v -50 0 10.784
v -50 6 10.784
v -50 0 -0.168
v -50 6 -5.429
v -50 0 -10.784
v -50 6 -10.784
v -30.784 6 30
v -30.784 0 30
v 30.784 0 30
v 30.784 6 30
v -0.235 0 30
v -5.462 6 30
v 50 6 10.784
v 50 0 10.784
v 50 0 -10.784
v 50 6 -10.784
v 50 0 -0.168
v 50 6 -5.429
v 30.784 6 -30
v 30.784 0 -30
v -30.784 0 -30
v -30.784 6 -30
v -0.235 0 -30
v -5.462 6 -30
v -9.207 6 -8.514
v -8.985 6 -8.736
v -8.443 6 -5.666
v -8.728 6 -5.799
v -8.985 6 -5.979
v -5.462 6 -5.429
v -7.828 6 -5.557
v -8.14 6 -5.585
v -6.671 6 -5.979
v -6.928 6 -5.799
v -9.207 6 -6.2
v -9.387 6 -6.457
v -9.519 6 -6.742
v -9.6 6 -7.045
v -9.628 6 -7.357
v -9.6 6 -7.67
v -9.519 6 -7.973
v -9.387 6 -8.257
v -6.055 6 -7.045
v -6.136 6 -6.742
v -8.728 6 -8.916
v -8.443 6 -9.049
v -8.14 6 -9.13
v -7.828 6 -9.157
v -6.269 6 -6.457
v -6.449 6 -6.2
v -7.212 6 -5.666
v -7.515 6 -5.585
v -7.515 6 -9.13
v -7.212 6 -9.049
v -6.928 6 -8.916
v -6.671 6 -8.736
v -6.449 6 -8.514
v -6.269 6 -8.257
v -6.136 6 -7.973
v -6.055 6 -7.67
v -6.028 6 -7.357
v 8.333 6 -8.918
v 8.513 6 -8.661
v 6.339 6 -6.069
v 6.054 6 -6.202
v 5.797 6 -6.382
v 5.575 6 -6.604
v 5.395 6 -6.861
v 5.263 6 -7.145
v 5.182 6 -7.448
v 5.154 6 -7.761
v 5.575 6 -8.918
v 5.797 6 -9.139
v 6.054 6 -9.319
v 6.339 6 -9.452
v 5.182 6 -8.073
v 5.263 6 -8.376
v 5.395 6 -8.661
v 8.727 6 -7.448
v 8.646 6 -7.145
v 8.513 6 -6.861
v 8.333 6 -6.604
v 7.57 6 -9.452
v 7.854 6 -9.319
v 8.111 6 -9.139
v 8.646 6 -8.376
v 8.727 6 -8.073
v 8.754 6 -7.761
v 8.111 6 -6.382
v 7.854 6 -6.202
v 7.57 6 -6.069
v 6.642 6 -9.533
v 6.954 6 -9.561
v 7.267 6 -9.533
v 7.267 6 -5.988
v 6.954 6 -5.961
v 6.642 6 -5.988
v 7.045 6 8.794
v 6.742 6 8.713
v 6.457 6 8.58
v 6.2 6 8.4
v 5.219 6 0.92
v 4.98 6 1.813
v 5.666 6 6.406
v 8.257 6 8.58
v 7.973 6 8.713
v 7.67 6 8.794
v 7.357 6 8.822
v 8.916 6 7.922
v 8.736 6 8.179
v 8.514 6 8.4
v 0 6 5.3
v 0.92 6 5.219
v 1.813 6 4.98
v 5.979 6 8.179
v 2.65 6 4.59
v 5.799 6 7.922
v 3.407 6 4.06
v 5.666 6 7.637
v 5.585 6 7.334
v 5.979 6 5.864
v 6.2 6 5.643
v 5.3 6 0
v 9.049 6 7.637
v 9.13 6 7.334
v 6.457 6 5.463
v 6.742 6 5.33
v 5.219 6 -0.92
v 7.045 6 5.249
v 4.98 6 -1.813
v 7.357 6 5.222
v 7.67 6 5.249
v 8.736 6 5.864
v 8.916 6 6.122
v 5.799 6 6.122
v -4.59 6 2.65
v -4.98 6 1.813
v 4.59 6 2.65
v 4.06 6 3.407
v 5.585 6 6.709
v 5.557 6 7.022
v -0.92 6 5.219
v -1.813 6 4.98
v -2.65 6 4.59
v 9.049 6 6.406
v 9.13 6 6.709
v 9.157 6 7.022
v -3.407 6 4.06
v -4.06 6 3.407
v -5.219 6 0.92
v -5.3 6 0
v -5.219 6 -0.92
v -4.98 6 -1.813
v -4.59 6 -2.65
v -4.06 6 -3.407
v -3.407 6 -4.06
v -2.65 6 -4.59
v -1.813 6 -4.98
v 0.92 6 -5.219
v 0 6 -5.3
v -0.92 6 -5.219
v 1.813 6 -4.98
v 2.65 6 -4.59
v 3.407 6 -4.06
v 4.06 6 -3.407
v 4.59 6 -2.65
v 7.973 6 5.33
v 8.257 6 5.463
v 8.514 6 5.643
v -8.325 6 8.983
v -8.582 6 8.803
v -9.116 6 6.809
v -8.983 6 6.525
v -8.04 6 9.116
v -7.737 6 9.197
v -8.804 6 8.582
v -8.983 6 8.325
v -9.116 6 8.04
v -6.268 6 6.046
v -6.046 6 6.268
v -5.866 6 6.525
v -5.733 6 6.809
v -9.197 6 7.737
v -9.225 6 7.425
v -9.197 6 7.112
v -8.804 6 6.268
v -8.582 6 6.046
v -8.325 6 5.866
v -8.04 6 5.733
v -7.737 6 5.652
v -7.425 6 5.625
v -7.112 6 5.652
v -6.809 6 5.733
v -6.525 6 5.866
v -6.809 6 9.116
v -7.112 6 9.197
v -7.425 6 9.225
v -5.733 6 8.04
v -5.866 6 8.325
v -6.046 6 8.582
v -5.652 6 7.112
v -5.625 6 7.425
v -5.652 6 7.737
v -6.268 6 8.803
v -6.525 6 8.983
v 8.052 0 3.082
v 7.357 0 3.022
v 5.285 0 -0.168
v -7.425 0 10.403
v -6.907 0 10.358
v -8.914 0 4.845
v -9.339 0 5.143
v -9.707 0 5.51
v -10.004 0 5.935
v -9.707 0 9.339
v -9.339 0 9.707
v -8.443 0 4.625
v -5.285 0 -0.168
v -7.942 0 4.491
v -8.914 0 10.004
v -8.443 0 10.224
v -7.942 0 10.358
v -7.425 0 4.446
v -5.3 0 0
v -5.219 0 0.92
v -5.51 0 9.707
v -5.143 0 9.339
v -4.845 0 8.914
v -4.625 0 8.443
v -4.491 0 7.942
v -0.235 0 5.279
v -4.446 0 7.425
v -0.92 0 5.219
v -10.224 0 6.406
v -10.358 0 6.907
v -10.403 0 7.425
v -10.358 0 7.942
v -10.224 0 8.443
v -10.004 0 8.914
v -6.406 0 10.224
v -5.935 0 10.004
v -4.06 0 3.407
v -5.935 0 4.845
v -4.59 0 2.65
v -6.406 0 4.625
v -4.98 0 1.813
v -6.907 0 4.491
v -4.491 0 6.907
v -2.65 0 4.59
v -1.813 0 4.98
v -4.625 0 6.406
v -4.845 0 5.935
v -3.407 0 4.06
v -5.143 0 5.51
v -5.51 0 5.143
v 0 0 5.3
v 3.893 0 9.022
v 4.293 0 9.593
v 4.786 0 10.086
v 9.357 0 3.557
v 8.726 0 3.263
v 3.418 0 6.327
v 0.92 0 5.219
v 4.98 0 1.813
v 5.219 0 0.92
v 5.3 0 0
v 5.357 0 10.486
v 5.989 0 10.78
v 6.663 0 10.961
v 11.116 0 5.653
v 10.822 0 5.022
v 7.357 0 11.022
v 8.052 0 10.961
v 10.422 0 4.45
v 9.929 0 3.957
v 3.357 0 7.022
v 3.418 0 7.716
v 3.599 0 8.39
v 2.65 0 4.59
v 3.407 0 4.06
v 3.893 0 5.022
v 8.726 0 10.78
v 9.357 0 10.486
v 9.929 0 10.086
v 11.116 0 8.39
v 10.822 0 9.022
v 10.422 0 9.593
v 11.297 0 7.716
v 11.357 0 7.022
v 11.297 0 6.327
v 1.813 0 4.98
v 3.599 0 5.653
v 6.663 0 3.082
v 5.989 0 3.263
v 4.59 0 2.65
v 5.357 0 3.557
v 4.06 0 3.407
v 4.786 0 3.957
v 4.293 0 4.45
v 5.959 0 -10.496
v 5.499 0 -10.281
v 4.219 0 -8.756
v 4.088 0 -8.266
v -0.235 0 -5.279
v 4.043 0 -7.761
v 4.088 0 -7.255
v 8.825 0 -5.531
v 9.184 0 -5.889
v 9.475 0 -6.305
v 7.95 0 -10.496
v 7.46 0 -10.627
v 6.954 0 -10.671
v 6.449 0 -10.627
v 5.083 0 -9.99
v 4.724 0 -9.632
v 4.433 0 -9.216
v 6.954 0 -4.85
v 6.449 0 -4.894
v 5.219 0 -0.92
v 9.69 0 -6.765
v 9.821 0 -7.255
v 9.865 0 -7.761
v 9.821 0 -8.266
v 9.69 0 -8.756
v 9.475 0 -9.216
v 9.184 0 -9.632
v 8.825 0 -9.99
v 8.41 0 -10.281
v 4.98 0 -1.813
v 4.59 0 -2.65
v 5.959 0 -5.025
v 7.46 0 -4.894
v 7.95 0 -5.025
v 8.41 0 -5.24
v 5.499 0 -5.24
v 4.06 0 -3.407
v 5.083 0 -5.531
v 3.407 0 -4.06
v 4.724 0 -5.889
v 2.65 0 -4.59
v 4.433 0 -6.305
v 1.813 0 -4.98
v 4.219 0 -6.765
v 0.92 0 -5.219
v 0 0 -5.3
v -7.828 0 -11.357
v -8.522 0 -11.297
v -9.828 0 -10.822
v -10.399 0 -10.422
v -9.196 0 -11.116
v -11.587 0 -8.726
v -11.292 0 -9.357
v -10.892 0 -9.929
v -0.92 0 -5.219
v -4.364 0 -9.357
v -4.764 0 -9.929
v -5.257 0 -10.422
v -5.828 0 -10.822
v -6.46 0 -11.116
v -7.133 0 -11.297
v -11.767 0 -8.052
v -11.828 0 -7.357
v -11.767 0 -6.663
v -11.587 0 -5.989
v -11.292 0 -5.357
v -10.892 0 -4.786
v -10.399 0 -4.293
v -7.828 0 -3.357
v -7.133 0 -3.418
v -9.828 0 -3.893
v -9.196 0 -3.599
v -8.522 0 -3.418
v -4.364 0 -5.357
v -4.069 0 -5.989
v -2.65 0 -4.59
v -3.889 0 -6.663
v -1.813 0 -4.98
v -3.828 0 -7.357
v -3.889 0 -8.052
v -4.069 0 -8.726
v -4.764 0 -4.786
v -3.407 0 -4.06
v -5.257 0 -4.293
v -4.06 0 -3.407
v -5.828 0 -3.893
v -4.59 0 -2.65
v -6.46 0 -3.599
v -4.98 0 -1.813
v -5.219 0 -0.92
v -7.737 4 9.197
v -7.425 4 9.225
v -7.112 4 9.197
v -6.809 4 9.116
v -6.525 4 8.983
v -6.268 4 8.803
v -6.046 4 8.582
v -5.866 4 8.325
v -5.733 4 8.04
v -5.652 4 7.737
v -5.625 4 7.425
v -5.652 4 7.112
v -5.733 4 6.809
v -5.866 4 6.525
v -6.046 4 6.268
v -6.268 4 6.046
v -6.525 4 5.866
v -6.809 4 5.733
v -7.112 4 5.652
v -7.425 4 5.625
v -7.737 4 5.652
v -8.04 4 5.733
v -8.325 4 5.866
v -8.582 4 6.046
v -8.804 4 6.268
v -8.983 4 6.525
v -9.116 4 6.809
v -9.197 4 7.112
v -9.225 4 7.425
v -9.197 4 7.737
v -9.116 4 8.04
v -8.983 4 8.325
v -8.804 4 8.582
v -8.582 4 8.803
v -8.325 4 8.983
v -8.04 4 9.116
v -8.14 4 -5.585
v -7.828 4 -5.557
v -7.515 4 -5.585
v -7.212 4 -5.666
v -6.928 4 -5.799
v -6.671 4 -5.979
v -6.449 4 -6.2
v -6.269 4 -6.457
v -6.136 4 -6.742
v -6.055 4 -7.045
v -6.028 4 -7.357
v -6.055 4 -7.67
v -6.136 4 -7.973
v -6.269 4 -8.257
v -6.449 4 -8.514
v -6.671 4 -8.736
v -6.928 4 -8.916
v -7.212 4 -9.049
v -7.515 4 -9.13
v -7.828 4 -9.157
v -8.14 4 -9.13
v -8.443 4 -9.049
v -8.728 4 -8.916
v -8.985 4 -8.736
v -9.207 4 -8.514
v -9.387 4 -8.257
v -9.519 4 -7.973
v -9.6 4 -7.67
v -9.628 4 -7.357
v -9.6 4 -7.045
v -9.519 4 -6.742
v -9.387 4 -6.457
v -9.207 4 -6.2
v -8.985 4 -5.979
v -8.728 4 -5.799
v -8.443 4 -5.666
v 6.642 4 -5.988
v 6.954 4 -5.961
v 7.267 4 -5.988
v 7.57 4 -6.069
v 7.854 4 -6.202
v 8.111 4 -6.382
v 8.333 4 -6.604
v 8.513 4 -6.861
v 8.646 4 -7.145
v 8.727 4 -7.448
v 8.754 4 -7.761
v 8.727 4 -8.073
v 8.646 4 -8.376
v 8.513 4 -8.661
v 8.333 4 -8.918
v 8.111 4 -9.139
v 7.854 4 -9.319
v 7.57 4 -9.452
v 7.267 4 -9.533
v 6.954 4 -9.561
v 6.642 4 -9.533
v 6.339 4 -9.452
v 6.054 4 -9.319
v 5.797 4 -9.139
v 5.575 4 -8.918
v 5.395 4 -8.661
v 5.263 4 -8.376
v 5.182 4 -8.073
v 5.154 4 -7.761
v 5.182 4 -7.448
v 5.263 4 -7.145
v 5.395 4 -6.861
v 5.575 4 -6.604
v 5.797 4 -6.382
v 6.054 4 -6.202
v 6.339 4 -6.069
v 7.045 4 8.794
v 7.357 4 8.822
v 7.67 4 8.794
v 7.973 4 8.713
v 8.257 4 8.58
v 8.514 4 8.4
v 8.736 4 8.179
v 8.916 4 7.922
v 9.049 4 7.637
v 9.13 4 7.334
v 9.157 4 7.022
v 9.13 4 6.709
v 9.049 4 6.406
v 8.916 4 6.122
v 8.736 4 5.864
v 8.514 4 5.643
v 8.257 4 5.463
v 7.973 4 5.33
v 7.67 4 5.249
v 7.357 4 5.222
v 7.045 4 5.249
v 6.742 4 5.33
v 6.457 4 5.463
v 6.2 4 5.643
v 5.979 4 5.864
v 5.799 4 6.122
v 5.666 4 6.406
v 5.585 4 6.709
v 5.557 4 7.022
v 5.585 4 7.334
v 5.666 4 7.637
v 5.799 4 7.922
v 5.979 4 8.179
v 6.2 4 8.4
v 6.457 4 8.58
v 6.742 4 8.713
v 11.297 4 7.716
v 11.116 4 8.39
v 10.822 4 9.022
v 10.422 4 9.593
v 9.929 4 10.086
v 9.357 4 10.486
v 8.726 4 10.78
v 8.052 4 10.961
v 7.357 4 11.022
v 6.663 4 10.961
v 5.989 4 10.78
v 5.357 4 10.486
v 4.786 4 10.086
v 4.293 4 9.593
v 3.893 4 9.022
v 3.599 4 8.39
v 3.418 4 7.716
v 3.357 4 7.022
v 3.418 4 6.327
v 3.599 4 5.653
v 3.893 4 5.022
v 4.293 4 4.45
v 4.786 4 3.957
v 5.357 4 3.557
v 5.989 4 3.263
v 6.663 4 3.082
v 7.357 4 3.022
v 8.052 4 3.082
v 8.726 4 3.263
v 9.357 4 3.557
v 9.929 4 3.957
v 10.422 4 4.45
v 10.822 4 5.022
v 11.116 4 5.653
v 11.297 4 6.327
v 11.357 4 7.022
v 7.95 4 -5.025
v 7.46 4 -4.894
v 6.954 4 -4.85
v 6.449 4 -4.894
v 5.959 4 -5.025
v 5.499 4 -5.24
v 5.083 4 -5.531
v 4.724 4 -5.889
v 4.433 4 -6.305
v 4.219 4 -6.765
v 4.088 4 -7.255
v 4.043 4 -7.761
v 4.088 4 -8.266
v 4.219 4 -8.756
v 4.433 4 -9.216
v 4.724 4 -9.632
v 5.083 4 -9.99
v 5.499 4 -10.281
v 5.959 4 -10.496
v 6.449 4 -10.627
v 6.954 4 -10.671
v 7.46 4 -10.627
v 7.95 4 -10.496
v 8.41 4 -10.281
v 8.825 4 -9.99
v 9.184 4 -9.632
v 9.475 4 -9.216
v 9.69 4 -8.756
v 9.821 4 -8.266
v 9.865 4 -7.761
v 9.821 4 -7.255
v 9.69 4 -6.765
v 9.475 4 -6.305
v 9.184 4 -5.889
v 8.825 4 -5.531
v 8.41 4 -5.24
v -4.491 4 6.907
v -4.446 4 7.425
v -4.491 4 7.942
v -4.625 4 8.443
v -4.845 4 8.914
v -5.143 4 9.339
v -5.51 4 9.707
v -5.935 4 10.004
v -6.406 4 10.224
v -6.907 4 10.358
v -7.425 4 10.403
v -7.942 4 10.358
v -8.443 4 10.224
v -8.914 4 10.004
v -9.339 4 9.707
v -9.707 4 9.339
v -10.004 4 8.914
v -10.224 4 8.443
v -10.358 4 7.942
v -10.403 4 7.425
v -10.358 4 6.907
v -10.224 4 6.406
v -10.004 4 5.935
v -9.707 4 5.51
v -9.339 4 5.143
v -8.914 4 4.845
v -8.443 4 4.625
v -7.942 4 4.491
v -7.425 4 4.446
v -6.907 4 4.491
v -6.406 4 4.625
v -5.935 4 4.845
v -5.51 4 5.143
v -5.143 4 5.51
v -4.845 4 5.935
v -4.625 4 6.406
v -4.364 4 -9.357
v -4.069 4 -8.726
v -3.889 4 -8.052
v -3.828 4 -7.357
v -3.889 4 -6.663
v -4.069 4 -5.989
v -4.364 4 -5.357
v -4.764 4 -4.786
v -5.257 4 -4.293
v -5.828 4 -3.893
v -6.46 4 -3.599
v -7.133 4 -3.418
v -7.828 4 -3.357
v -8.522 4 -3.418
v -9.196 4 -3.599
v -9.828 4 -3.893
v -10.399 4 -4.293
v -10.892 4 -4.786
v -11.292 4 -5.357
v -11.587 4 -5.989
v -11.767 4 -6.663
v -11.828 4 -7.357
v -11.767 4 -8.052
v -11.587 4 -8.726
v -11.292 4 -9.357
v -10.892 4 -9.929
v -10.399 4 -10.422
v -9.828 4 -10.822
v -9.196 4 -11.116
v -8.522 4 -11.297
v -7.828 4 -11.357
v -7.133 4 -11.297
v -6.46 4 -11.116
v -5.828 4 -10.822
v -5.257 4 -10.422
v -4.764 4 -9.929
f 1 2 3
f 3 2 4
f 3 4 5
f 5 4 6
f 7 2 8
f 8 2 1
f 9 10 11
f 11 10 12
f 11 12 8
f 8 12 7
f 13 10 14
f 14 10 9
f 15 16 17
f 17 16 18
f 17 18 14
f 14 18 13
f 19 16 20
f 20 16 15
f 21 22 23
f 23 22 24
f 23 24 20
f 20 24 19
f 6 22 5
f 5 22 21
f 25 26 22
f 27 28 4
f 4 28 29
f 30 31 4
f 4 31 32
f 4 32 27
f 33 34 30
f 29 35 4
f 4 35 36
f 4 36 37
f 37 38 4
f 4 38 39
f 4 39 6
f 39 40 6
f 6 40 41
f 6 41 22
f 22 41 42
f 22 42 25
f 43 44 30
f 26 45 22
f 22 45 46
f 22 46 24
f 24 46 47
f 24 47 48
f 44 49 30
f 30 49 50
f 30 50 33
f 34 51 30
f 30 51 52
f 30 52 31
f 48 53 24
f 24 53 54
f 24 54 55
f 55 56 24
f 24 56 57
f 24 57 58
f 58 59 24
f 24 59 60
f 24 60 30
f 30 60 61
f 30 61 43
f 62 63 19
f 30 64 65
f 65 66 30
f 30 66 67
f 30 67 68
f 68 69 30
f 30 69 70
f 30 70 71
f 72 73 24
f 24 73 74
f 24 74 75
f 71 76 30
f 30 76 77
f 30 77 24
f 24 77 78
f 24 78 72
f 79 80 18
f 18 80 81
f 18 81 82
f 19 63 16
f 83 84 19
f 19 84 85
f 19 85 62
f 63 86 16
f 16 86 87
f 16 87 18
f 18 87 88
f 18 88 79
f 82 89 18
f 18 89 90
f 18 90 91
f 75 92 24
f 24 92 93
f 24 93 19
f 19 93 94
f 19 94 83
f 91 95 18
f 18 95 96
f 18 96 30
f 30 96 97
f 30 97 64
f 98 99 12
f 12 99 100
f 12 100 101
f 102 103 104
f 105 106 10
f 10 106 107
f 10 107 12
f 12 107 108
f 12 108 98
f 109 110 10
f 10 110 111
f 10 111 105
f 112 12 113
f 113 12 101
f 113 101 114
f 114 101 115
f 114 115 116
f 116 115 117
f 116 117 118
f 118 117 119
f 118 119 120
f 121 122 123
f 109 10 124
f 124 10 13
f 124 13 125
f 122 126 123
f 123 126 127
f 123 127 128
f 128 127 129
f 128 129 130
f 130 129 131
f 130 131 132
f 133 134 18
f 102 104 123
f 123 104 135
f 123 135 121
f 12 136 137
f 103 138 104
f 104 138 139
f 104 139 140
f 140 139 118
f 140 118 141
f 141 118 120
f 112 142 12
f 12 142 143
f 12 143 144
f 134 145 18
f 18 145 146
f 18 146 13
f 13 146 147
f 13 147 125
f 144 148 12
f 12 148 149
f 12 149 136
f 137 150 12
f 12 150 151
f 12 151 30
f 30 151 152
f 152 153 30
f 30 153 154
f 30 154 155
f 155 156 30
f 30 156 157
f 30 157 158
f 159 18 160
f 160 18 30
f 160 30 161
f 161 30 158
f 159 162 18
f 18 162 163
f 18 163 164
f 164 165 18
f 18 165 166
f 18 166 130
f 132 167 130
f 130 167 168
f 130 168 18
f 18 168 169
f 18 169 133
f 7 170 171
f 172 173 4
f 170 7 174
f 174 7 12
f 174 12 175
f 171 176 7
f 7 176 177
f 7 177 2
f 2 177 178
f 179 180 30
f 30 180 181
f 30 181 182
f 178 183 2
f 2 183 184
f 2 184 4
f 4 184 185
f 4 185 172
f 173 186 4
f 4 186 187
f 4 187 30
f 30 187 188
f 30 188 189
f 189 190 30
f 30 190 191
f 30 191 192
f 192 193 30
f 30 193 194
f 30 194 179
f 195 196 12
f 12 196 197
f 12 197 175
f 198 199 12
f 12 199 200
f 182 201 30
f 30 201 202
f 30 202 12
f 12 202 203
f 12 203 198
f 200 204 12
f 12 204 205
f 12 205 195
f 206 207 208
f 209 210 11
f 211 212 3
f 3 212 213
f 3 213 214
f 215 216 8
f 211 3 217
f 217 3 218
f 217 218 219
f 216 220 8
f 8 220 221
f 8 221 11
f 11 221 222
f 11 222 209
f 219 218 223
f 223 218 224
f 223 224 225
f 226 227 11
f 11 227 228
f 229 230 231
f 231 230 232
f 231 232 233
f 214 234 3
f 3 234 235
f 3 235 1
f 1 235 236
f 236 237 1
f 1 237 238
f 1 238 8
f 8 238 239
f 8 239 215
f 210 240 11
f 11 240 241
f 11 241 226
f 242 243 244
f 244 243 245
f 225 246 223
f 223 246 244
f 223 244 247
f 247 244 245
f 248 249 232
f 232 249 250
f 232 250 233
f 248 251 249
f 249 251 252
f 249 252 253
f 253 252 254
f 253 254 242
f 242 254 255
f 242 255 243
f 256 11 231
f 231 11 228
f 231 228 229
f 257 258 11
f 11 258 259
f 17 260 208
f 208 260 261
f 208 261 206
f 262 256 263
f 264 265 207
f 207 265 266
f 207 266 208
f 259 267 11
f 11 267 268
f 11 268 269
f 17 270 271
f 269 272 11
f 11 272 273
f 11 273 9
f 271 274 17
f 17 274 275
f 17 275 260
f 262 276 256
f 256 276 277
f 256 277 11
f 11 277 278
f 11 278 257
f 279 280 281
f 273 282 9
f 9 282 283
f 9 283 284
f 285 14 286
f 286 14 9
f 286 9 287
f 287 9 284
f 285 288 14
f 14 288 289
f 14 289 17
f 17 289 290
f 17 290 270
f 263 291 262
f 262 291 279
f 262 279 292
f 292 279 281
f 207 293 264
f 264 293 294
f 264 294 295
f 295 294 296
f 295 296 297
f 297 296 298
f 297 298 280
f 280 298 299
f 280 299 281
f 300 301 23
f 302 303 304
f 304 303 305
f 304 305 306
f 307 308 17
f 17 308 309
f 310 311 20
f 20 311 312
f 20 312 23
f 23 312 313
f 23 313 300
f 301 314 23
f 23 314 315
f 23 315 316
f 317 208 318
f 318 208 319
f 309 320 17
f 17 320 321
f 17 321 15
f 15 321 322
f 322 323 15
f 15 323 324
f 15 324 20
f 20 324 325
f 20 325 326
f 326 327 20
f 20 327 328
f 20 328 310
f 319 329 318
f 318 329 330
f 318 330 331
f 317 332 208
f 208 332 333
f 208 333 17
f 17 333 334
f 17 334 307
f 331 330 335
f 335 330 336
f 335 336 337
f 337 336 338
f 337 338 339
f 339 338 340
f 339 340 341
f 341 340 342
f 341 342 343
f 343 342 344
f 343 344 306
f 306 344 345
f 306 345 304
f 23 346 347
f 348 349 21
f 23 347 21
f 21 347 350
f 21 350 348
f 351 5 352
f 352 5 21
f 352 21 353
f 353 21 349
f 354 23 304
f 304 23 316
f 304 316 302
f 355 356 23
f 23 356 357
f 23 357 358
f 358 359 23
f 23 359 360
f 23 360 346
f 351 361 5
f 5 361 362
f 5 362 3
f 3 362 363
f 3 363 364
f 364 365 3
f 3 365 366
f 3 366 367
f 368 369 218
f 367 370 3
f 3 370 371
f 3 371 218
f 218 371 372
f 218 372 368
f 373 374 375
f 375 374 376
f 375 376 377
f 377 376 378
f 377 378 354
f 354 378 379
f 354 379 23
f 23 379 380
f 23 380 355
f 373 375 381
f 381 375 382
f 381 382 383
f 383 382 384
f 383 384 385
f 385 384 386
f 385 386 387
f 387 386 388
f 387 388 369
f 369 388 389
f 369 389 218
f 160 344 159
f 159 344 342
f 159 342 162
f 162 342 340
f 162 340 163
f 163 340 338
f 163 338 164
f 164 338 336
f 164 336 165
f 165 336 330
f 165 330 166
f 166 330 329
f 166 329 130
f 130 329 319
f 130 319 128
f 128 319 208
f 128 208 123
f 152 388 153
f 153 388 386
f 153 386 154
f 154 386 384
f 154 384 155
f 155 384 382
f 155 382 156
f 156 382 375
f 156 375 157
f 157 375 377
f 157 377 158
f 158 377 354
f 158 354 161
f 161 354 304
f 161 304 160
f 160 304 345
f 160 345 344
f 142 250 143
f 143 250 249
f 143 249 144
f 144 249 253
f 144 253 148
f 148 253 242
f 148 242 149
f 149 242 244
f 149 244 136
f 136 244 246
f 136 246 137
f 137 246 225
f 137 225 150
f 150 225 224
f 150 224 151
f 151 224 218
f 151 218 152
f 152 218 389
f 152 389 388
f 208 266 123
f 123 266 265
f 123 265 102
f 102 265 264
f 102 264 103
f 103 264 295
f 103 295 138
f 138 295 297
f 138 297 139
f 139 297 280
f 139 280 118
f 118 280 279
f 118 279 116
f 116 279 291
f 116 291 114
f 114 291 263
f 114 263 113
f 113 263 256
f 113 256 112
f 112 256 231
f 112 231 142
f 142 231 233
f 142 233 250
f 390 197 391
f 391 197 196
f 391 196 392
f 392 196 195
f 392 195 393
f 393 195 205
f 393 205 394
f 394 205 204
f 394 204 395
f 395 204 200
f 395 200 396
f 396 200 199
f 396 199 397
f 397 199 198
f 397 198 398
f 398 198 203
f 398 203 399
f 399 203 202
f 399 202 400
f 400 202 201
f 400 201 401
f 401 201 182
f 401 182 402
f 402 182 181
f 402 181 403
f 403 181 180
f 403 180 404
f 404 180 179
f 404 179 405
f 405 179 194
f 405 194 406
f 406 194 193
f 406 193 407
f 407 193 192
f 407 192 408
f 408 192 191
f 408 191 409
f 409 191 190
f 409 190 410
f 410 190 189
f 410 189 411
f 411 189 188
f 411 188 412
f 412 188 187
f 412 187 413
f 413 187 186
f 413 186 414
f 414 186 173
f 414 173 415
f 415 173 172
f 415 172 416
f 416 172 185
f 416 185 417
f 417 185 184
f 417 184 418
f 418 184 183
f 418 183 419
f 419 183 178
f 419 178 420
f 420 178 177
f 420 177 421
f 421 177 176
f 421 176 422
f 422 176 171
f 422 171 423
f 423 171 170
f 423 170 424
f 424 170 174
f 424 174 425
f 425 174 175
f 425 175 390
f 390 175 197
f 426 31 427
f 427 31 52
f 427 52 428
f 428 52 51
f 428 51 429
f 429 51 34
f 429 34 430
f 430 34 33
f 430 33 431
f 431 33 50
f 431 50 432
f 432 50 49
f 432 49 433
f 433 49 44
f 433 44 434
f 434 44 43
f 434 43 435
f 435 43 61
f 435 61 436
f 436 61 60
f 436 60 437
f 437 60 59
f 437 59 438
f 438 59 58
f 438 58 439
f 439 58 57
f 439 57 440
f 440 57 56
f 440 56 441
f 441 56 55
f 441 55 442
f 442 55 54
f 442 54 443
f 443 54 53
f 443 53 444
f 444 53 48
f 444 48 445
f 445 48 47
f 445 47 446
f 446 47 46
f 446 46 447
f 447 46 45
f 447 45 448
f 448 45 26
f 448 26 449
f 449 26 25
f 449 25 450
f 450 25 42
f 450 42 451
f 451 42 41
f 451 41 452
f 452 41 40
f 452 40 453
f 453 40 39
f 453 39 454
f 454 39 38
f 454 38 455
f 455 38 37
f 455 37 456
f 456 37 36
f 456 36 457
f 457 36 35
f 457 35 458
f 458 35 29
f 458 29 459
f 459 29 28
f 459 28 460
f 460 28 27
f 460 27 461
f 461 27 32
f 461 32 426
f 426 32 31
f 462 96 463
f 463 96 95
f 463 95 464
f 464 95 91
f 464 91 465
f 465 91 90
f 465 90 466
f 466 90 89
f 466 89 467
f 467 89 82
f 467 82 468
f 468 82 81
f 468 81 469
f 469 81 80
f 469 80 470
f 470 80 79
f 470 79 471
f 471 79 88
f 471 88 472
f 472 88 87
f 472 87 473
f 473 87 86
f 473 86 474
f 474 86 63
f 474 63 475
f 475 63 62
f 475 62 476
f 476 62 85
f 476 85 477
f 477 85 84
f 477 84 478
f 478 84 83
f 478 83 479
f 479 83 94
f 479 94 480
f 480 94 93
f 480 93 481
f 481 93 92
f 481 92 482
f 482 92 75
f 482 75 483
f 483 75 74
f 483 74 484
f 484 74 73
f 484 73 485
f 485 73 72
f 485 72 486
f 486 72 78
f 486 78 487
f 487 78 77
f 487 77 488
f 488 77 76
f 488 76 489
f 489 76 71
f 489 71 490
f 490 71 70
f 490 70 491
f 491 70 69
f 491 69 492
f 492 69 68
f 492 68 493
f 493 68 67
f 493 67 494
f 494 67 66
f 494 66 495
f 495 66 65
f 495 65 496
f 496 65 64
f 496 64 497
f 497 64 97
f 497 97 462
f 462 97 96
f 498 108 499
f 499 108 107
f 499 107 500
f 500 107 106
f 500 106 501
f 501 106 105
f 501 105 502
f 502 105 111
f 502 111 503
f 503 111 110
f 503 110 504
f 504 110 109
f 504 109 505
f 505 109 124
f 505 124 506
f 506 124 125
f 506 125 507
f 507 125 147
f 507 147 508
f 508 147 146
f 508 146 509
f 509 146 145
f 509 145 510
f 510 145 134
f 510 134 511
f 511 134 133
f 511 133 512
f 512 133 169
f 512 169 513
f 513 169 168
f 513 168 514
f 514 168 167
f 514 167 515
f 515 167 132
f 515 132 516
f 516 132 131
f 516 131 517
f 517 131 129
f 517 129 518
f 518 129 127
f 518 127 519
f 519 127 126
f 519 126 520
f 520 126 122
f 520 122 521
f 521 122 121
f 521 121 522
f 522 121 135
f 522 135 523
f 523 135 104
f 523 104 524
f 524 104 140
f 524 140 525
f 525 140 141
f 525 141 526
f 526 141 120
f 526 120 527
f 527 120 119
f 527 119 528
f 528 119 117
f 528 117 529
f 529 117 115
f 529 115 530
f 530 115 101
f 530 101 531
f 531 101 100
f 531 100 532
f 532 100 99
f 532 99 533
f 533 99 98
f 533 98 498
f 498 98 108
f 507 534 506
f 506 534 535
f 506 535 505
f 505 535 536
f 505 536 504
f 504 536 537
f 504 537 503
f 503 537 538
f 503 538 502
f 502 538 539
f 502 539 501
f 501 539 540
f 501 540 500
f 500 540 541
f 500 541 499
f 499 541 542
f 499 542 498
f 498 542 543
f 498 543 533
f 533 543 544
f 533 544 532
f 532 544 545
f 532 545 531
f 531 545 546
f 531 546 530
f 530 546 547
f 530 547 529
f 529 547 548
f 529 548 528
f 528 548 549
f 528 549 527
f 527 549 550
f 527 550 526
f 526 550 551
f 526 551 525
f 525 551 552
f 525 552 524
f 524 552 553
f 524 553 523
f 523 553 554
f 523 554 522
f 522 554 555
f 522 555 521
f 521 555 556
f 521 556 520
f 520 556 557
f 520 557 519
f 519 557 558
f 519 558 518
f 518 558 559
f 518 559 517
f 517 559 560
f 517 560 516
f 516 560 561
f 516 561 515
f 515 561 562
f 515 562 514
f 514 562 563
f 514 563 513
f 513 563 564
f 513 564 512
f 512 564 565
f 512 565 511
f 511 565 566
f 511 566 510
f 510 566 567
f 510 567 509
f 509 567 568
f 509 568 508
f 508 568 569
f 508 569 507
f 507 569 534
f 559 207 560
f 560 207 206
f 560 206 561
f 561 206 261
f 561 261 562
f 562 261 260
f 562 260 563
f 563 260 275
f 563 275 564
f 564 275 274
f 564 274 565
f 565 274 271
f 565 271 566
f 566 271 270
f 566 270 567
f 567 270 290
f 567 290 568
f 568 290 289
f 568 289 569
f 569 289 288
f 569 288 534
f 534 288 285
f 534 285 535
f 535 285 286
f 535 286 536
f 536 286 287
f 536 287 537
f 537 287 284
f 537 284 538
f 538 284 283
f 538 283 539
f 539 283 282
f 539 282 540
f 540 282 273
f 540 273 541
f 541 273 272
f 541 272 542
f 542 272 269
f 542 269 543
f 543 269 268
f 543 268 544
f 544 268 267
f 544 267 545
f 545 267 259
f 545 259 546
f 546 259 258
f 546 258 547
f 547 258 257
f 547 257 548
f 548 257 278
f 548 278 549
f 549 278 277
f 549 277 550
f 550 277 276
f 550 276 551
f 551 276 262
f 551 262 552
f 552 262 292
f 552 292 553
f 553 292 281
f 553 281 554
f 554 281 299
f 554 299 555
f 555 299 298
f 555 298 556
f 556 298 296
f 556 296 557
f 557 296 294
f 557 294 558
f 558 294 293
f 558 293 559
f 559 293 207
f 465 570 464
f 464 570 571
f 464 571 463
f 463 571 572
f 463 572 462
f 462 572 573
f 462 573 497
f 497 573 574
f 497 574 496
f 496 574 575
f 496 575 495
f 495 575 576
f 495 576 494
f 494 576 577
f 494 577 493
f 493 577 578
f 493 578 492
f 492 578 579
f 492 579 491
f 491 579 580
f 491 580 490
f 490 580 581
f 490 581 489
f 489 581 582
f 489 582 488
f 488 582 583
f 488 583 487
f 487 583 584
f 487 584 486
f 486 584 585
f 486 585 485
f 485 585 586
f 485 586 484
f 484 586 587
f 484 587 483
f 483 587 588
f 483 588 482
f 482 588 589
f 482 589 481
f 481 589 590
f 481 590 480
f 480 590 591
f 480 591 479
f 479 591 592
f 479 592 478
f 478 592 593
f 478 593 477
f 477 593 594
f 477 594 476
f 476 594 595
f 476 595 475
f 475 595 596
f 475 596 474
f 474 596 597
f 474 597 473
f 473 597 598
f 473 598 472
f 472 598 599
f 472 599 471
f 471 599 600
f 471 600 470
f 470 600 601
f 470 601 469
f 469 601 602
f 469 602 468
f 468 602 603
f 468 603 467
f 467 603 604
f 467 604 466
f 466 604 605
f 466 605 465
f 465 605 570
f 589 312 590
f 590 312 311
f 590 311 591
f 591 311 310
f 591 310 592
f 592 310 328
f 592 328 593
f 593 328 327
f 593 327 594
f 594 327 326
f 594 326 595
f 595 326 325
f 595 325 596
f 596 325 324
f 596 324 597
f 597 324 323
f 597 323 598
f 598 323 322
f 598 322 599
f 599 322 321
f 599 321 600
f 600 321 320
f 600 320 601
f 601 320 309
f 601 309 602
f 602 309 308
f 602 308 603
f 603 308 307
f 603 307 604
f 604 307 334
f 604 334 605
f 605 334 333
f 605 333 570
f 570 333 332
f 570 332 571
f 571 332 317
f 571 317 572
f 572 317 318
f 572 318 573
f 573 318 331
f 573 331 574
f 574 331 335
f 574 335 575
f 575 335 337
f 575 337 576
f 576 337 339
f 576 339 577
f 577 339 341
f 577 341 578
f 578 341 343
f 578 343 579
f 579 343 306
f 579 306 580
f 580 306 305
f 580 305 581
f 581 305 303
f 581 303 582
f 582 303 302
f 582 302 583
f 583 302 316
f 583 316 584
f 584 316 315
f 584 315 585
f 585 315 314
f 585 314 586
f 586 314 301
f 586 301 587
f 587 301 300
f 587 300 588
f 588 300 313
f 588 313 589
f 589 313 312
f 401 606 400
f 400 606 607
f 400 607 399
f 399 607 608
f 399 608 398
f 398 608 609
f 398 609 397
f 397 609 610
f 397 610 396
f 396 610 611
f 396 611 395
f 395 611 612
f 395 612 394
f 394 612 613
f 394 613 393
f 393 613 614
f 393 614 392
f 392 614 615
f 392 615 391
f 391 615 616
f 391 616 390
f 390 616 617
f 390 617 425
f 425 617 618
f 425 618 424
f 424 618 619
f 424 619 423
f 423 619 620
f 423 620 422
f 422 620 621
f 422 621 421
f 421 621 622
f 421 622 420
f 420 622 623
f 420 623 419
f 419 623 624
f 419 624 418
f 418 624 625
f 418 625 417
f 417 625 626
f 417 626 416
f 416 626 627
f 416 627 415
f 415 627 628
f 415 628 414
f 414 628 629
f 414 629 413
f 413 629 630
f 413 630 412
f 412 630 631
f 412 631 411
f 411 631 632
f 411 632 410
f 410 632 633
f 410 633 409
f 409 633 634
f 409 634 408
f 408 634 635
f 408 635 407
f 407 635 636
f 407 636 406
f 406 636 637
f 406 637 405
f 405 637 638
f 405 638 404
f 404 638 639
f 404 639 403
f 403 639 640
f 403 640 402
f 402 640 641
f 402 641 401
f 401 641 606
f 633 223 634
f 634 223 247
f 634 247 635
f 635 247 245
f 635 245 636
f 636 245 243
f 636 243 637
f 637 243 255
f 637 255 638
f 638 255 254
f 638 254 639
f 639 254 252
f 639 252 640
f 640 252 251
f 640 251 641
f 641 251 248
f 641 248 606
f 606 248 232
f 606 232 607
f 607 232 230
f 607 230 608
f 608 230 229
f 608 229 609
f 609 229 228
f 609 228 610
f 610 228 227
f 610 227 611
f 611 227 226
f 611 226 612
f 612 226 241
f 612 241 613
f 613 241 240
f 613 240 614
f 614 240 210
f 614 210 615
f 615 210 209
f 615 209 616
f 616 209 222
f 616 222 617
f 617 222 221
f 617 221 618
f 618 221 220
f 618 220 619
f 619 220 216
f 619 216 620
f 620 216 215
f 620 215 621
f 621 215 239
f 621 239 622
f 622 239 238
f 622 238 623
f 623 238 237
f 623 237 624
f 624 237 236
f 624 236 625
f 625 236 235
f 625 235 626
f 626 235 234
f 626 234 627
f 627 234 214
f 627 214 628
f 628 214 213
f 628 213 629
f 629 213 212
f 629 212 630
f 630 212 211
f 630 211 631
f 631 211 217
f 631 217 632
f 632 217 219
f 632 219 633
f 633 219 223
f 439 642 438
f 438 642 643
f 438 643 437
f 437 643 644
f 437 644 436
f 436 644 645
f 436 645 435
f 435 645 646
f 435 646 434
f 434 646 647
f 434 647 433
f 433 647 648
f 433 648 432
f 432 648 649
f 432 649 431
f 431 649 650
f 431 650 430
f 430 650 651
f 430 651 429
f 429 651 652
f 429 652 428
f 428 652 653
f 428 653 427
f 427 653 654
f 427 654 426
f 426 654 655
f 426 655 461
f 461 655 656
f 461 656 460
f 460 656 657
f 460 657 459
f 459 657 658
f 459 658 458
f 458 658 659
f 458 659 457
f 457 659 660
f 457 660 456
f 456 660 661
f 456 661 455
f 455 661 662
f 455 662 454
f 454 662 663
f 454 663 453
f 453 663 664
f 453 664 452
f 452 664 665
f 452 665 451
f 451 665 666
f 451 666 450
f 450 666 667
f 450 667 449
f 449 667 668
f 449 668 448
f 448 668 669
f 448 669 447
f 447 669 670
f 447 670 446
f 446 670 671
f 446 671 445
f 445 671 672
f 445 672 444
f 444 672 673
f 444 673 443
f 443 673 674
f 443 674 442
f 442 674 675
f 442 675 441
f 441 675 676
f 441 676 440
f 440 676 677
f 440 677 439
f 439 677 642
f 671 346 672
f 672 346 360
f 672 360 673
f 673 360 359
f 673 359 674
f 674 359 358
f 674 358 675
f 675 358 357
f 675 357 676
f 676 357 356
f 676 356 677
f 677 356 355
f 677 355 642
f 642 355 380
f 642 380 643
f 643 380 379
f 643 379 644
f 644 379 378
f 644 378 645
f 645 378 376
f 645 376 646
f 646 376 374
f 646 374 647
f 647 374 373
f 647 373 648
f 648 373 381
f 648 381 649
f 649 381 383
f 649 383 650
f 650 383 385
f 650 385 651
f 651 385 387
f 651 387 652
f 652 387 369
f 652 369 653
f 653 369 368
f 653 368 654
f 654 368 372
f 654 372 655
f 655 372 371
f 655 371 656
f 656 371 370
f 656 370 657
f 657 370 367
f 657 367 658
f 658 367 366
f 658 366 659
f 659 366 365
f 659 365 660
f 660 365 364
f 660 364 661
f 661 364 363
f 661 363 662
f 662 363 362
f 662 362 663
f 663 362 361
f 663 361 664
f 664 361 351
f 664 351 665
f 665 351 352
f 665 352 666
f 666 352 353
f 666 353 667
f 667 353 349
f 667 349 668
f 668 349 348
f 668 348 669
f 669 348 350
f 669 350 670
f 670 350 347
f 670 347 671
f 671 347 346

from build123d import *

# Parameters (mm, degrees)
SALIENTE_EXTRUIR1_DEPTH = 6
CORTAR_EXTRUIR1_REACH   = 8
CROQUIS2_R              = 5.3
CROQUIS2_R_2            = 1.8
CROQUIS3_R              = 4
CROQUIS3_R_2            = 2.910883151
CROQUIS3_R_3            = 2.97880362
CORTAR_EXTRUIR2_DEPTH   = 4


with BuildPart() as part:
    # Croquis1 → Saliente-Extruir1 (new body)
    with BuildSketch(Plane(origin=(0, 0, 0), x_dir=(1, 0, 0), z_dir=(0, 1, 0))):
        Polygon((-50, 10.783872382), (-30.783872382, 30), (30.783872382, 30), (50, 10.783872382), (50, -10.783872382), (30.783872382, -30), (-30.783872382, -30), (-50, -10.783872382), align=None)
    extrude(amount=SALIENTE_EXTRUIR1_DEPTH)

    # Croquis2 → Cortar-Extruir1 (cut, up to next)
    with BuildSketch(Plane(origin=(0, 6, 0), x_dir=(1, 0, 0), z_dir=(0, 1, 0)), mode=Mode.PRIVATE) as cortar_extruir1_sk1:
        Circle(CROQUIS2_R)
    cortar_extruir1_tool1 = extrude(cortar_extruir1_sk1.sketch, amount=-CORTAR_EXTRUIR1_REACH, mode=Mode.PRIVATE) & part.part
    add(cortar_extruir1_tool1.solids().sort_by_distance((0, 6, 0))[0], mode=Mode.SUBTRACT)
    # Croquis2 → Cortar-Extruir1 (cut, up to next)
    with BuildSketch(Plane(origin=(0, 6, 0), x_dir=(1, 0, 0), z_dir=(0, 1, 0)), mode=Mode.PRIVATE) as cortar_extruir1_sk2:
        with Locations((-7.424621202, -7.424621202)):
            Circle(CROQUIS2_R_2)
    cortar_extruir1_tool2 = extrude(cortar_extruir1_sk2.sketch, amount=-CORTAR_EXTRUIR1_REACH, mode=Mode.PRIVATE) & part.part
    add(cortar_extruir1_tool2.solids().sort_by_distance((-7.424621, 6, 7.424621))[0], mode=Mode.SUBTRACT)
    # Croquis2 → Cortar-Extruir1 (cut, up to next)
    with BuildSketch(Plane(origin=(0, 6, 0), x_dir=(1, 0, 0), z_dir=(0, 1, 0)), mode=Mode.PRIVATE) as cortar_extruir1_sk3:
        with Locations((-7.827733398, 7.357422898)):
            Circle(CROQUIS2_R_2)
    cortar_extruir1_tool3 = extrude(cortar_extruir1_sk3.sketch, amount=-CORTAR_EXTRUIR1_REACH, mode=Mode.PRIVATE) & part.part
    add(cortar_extruir1_tool3.solids().sort_by_distance((-7.827733, 6, -7.357423))[0], mode=Mode.SUBTRACT)
    # Croquis2 → Cortar-Extruir1 (cut, up to next)
    with BuildSketch(Plane(origin=(0, 6, 0), x_dir=(1, 0, 0), z_dir=(0, 1, 0)), mode=Mode.PRIVATE) as cortar_extruir1_sk4:
        with Locations((6.954310702, 7.760535094)):
            Circle(CROQUIS2_R_2)
    cortar_extruir1_tool4 = extrude(cortar_extruir1_sk4.sketch, amount=-CORTAR_EXTRUIR1_REACH, mode=Mode.PRIVATE) & part.part
    add(cortar_extruir1_tool4.solids().sort_by_distance((6.954311, 6, -7.760535))[0], mode=Mode.SUBTRACT)
    # Croquis2 → Cortar-Extruir1 (cut, up to next)
    with BuildSketch(Plane(origin=(0, 6, 0), x_dir=(1, 0, 0), z_dir=(0, 1, 0)), mode=Mode.PRIVATE) as cortar_extruir1_sk5:
        with Locations((7.357422898, -7.021509007)):
            Circle(CROQUIS2_R_2)
    cortar_extruir1_tool5 = extrude(cortar_extruir1_sk5.sketch, amount=-CORTAR_EXTRUIR1_REACH, mode=Mode.PRIVATE) & part.part
    add(cortar_extruir1_tool5.solids().sort_by_distance((7.357423, 6, 7.021509))[0], mode=Mode.SUBTRACT)

    # Croquis3 → Cortar-Extruir2 (cut)
    with BuildSketch(Plane.XZ):
        with Locations((7.357422898, 7.021509007)):
            Circle(CROQUIS3_R)
        with Locations((6.954310702, -7.760535094)):
            Circle(CROQUIS3_R_2)
        with Locations((-7.424621202, 7.424621202)):
            Circle(CROQUIS3_R_3)
        with Locations((-7.827733398, -7.357422898)):
            Circle(CROQUIS3_R)
    extrude(amount=-CORTAR_EXTRUIR2_DEPTH, mode=Mode.SUBTRACT)


solid = part.part
